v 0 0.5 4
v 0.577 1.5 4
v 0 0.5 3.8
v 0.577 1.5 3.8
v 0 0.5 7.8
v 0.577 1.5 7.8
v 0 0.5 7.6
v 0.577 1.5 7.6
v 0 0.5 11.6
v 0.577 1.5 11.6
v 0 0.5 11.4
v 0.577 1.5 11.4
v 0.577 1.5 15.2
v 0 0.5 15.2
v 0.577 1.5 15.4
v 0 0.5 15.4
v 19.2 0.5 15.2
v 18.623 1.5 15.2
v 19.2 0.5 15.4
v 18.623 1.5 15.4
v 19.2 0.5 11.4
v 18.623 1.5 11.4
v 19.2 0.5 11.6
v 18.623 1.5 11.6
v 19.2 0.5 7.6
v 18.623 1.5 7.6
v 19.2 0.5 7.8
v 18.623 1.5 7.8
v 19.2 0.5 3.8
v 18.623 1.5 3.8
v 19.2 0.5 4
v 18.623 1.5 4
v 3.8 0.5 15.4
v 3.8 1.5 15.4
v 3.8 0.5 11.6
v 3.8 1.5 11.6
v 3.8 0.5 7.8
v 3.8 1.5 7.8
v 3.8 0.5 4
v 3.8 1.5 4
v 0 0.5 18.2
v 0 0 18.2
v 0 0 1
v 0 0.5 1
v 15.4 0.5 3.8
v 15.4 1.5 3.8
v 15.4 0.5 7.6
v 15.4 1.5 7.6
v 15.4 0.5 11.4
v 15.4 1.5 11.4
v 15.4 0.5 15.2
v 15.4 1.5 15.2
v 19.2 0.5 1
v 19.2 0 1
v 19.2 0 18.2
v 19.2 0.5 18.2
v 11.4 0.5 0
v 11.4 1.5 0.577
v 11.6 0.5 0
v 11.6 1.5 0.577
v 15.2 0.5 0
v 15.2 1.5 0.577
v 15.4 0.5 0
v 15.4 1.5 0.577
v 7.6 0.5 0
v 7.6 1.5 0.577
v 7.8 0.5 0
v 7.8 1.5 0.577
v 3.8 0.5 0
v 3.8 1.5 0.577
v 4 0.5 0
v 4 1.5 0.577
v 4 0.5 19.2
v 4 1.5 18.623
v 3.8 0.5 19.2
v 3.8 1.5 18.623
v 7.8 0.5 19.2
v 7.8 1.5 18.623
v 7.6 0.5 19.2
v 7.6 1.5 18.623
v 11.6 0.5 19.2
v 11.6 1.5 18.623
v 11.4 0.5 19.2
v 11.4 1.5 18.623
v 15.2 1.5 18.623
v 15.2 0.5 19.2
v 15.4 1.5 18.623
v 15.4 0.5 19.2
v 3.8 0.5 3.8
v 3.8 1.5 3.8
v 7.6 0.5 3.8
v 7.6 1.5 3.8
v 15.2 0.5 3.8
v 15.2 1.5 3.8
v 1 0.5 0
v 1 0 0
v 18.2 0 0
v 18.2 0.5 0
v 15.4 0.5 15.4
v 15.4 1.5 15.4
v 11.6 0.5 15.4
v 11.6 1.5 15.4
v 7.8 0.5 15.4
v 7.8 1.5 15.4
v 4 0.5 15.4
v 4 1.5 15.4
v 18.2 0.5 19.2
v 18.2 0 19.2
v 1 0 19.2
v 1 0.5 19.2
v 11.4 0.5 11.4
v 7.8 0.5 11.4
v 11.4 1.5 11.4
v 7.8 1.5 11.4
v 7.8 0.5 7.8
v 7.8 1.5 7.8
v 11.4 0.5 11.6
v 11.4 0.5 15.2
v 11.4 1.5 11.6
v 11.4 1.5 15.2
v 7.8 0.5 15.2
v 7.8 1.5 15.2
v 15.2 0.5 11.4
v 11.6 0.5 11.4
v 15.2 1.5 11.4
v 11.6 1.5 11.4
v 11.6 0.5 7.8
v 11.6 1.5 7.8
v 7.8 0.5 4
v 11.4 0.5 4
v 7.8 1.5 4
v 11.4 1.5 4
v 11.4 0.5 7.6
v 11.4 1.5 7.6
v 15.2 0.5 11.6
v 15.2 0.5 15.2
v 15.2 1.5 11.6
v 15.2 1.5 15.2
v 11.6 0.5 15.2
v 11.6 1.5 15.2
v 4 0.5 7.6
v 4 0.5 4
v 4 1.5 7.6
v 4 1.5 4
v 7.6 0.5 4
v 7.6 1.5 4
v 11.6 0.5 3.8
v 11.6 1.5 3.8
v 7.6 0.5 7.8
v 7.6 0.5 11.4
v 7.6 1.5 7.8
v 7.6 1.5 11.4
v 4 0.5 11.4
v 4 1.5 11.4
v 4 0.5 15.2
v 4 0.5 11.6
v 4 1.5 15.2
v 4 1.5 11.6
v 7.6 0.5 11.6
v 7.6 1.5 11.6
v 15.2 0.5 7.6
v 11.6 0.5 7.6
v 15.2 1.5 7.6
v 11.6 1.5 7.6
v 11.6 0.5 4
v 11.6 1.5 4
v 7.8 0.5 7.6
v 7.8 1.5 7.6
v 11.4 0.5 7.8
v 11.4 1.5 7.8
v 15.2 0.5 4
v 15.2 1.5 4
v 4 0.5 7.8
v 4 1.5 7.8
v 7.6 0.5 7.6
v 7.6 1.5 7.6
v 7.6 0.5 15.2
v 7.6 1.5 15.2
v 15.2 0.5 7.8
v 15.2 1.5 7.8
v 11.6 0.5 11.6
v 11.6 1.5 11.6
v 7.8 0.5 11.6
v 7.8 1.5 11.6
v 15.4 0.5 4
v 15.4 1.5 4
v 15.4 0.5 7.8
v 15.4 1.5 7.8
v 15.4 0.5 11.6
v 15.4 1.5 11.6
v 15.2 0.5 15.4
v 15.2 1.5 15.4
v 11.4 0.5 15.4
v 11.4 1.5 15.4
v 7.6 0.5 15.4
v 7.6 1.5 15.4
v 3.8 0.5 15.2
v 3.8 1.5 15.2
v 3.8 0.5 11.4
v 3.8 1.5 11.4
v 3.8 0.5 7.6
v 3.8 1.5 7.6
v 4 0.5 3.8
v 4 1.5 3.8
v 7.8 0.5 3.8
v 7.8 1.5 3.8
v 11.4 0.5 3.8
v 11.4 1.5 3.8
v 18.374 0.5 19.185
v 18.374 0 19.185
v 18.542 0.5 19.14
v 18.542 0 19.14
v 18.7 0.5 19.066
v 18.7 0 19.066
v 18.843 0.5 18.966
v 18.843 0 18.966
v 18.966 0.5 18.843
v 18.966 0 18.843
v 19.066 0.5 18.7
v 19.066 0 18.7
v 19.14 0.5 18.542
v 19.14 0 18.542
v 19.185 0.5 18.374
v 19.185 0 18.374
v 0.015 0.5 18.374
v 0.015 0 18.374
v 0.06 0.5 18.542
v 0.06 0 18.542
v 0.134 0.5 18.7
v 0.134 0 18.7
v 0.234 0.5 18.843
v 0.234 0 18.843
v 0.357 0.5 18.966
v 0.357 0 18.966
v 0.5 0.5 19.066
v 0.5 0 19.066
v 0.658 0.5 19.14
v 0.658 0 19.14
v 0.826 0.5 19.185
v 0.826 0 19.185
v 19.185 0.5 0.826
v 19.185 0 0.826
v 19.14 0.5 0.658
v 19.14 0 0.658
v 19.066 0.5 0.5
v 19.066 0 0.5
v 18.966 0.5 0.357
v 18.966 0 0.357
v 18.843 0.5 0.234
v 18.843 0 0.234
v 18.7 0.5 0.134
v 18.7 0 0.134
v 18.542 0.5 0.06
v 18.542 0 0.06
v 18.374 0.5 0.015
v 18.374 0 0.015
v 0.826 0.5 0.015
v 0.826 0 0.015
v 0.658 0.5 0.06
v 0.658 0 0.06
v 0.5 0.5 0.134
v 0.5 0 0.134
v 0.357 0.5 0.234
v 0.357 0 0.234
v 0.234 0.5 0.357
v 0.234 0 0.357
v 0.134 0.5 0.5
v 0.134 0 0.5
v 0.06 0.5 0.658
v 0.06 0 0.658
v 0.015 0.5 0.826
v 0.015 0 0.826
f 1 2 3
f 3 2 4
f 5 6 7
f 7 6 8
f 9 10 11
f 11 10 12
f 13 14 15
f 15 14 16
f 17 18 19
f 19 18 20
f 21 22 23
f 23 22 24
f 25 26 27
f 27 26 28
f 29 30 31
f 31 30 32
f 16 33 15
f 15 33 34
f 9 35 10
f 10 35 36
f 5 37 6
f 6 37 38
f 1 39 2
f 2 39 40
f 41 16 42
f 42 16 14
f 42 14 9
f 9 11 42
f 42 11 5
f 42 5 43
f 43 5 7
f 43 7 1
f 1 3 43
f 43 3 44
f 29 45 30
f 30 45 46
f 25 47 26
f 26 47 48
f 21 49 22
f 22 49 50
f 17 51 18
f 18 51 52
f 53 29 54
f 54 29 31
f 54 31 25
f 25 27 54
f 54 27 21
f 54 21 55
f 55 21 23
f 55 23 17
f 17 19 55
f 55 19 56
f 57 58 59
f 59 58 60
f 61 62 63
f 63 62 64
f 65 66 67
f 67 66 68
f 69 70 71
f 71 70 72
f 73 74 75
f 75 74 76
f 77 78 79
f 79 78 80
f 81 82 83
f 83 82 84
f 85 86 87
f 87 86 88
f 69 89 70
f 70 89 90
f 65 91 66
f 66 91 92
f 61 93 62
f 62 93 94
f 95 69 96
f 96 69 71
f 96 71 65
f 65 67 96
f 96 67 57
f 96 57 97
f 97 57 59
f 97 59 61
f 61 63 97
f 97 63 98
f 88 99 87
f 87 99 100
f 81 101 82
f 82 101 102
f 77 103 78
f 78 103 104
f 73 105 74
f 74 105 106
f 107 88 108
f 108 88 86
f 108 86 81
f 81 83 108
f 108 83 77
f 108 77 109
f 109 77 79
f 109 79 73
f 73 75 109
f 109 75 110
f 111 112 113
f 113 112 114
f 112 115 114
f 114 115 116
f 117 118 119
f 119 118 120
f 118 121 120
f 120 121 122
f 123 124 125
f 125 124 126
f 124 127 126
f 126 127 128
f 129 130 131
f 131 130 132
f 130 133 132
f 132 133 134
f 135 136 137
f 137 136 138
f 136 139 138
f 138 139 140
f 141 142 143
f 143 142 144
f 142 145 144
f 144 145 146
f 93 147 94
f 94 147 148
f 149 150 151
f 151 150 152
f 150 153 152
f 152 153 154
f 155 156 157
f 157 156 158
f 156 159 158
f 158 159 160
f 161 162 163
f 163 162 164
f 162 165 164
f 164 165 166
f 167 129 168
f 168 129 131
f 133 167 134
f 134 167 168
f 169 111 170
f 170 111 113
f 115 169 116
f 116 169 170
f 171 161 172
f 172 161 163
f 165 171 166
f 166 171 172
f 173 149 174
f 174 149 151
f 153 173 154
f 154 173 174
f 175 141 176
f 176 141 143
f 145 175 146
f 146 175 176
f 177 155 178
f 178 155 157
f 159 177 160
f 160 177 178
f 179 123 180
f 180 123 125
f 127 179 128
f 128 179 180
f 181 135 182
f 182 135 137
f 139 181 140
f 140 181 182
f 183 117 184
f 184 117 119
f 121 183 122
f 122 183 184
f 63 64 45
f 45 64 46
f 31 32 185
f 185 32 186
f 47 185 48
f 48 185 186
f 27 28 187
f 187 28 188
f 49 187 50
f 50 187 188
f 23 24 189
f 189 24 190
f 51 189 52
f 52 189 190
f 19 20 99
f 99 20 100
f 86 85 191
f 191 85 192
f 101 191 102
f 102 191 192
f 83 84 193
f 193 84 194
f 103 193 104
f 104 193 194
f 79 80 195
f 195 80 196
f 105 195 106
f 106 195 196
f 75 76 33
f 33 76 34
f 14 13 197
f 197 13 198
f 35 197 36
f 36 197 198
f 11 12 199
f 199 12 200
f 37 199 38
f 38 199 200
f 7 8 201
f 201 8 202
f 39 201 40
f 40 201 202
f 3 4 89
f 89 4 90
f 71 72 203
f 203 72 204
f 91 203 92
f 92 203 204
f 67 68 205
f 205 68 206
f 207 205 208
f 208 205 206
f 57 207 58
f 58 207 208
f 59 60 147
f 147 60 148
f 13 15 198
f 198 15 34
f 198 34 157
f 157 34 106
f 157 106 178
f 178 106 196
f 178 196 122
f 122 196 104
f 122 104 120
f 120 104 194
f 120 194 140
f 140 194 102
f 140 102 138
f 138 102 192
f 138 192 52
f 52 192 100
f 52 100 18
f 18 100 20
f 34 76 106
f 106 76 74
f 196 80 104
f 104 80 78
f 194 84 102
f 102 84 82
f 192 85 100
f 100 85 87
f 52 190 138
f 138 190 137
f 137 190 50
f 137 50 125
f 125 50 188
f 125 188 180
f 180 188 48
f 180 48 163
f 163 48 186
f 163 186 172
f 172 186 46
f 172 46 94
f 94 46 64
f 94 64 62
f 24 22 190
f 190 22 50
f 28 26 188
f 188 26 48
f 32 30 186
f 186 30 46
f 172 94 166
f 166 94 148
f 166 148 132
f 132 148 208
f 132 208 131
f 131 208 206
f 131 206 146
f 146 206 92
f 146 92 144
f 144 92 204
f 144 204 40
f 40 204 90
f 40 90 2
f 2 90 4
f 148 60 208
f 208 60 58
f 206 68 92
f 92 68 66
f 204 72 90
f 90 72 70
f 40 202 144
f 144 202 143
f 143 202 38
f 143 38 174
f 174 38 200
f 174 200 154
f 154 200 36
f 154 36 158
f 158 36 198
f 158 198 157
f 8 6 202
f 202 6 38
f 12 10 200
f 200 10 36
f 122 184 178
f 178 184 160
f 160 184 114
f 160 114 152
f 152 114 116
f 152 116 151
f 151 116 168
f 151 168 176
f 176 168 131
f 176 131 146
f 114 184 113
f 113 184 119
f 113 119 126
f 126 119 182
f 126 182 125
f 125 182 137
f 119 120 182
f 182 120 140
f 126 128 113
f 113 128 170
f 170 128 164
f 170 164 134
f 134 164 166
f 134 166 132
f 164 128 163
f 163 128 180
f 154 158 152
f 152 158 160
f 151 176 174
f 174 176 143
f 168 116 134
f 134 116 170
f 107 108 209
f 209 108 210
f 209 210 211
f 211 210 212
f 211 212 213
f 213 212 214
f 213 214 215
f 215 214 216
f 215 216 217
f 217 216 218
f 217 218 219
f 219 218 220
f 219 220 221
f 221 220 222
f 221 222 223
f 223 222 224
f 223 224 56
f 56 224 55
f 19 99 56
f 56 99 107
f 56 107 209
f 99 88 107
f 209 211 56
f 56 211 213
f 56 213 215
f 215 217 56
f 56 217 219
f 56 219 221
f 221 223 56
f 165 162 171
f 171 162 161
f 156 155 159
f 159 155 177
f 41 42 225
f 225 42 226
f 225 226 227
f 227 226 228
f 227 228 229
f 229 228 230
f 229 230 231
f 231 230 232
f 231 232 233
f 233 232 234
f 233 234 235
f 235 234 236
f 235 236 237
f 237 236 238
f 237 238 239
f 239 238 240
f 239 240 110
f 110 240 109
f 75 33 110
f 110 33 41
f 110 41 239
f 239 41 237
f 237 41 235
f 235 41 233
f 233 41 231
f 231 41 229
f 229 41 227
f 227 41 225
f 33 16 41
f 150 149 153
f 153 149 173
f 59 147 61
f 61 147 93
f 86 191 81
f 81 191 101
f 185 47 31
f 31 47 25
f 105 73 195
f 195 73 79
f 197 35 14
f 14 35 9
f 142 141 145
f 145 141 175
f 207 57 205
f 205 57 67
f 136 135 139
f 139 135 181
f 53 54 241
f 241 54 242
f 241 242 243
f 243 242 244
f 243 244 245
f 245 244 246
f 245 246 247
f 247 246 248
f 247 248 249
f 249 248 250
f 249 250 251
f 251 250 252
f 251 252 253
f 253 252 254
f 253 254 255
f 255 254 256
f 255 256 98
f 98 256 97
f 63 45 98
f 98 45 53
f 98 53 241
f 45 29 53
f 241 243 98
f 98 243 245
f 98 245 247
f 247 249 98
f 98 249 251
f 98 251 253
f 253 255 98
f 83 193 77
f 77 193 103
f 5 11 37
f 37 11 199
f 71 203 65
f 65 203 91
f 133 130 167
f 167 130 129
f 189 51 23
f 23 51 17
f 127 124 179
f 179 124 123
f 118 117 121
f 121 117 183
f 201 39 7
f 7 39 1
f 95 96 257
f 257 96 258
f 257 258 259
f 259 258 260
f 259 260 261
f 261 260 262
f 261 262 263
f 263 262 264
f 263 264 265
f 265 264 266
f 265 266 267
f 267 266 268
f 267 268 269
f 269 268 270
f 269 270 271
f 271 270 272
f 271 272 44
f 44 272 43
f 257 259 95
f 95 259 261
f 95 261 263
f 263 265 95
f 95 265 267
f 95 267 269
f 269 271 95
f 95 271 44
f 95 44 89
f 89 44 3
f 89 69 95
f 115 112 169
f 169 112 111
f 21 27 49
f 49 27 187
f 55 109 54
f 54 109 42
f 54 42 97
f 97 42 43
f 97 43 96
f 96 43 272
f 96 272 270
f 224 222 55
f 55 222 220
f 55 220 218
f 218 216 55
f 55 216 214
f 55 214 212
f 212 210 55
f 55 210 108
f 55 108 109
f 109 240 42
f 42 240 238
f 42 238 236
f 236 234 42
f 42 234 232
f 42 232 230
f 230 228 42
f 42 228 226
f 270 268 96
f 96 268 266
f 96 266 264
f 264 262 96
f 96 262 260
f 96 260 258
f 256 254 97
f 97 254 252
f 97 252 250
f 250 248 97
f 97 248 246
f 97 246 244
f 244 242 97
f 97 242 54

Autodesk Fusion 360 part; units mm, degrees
sketch "スケッチ1" plane through (0, 0, 0) normal (0, 1, 0) x (1, 0, 0)
  line L0 (1, 0) -> (18.2, 0)
  line L1 (19.2, -1) -> (19.2, -18.2)
  line L2 (18.2, -19.2) -> (1, -19.2)
  line L3 (0, -18.2) -> (0, -1)
  line L4 (3.8, -19.2) -> (3.8, 0)
  line L5 (4, -19.2) -> (4, 0)
  line L6 (7.6, 0) -> (7.6, -19.2)
  line L7 (7.8, -19.2) -> (7.8, 0)
  line L8 (19.2, -3.8) -> (0, -3.8)
  line L9 (0, -4) -> (19.2, -4)
  line L10 (19.2, -7.6) -> (0, -7.6)
  line L11 (0, -7.8) -> (19.2, -7.8)
  line L12 (0, -11.4) -> (19.2, -11.4)
  line L13 (19.2, -11.6) -> (0, -11.6)
  line L14 (0, -15.2) -> (19.2, -15.2)
  line L15 (19.2, -15.4) -> (0, -15.4)
  line L16 (11.4, -19.2) -> (11.4, 0)
  line L17 (11.6, 0) -> (11.6, -19.2)
  line L18 (15.2, -19.2) -> (15.2, 0)
  line L19 (15.4, 0) -> (15.4, -19.2)
  arc A0 (18.2, -19.2) -> (19.2, -18.2) centre (18.2, -18.2) ccw
  arc A1 (19.2, -1) -> (18.2, 0) centre (18.2, -1) ccw
  arc A2 (1, 0) -> (0, -1) centre (1, -1) ccw
  arc A3 (0, -18.2) -> (1, -19.2) centre (1, -18.2) ccw
  line L20 (-20.3302, 0) -> (25.6829, 0) construction
  line L21 (0, -22.3952) -> (0, 11.1848) construction
  dimension "d3" = 3.8
  dimension "d5" = 3.6
  dimension "d6" = 0.2
  dimension "d7" = 3.8
  dimension "d8" = 0.2
  dimension "d9" = 3.6
  dimension "d10" = 0.2
  dimension "d11" = 0.2
  dimension "d12" = 3.6
  dimension "d13" = 0.2
  dimension "d14" = 3.6
  dimension "d15" = 0.2
  dimension "d16" = 3.6
  dimension "d17" = 0.2
  dimension "d18" = 0.2
  dimension "d19" = 3.6
  dimension "d24" = 3.8
  dimension "d25" = 3.8
  dimension "d34" = 1
extrude "押し出し1" add sketch "スケッチ1" along normal blind 0.5 contours L0 L3 L4 L8 A2 | L0 L5 L6 L8 | L3 L4 L9 L10 | L0 L7 L8 L16 | L5 L6 L9 L10 | L3 L4 L11 L12 | L0 L8 L17 L18 | L7 L9 L10 L16 | L5 L6 L11 L12 | L3 L4 L13 L14 | L0 L1 L8 L19 A1 | L9 L10 L17 L18 | L7 L11 L12 L16 | L5 L6 L13 L14 | L2 L3 L4 L15 A3 | L1 L9 L10 L19 | L11 L12 L17 L18 | L7 L13 L14 L16 | L2 L5 L6 L15 | L1 L11 L12 L19 | L13 L14 L17 L18 | L2 L7 L15 L16 | L1 L13 L14 L19 | L2 L15 L17 L18 | L1 L2 L15 L19 A0 makes body 1 at (9, 0, 5.2) makes body 2 at (17.9333, 0, 2.8667) makes body 3 at (9, 0, 2.5333) makes body 4 at (10.2, 0, 14) makes body 5 at (5.2, 0, 5.2) makes body 6 at (1.2667, 0, 9) makes body 7 at (2.5333, 0, 14) makes body 8 at (6.4, 0, 1.2667) makes body 9 at (6.4, 0, 14) makes body 10 at (9, 0, 9) makes body 11 at (12.8, 0, 5.2) makes body 12 at (16.6667, 0, 9) makes body 13 at (14, 0, 14) makes body 14 at (12.8, 0, 9) makes body 15 at (12.8, 0, 2.5333) makes body 16 at (1.2667, 0, 5.2) makes body 17 at (5.2, 0, 9) makes body 18 at (16.6667, 0, 5.2) makes body 19 at (1.2667, 0, 16.3333) makes body 20 at (2.8667, 0, 1.2667) makes body 21 at (17.9333, 0, 14) makes body 22 at (17.9333, 0, 16.3333) makes body 23 at (9, 0, 17.9333) makes body 24 at (5.2, 0, 16.6667) makes body 25 at (12.8, 0, 17.9333)
extrude "押し出し2" add sketch "スケッチ1" along normal blind 1.5 contours L0 L4 L5 L8 | L4 L5 L8 L9 | L3 L4 L8 L9 | L0 L6 L7 L8 | L5 L6 L8 L9 | L4 L5 L9 L10 | L6 L7 L8 L9 | L4 L5 L10 L11 | L3 L4 L10 L11 | L0 L8 L16 L17 | L7 L8 L9 L16 | L6 L7 L9 L10 | L5 L6 L10 L11 | L4 L5 L11 L12 | L8 L9 L16 L17 | L6 L7 L10 L11 | L4 L5 L12 L13 | L3 L4 L12 L13 | L0 L8 L18 L19 | L8 L9 L17 L18 | L9 L10 L16 L17 | L7 L10 L11 L16 | L6 L7 L11 L12 | L5 L6 L12 L13 | L4 L5 L13 L14 | L8 L9 L18 L19 | L10 L11 L16 L17 | L6 L7 L12 L13 | L4 L5 L14 L15 | L3 L4 L14 L15 | L1 L8 L9 L19 | L9 L10 L18 L19 | L10 L11 L17 L18 | L11 L12 L16 L17 | L7 L12 L13 L16 | L6 L7 L13 L14 | L5 L6 L14 L15 | L2 L4 L5 L15 | L10 L11 L18 L19 | L12 L13 L16 L17 | L6 L7 L14 L15 | L1 L10 L11 L19 | L11 L12 L18 L19 | L12 L13 L17 L18 | L13 L14 L16 L17 | L7 L14 L15 L16 | L2 L6 L7 L15 | L12 L13 L18 L19 | L14 L15 L16 L17 | L1 L12 L13 L19 | L13 L14 L18 L19 | L14 L15 L17 L18 | L2 L15 L16 L17 | L14 L15 L18 L19 | L1 L14 L15 L19 | L2 L15 L18 L19 bodies 1 2 3 4 5 6 7 8 9 10 11 12 13 14 15 16 17 18 19 20 21 22 23 24 25
sketch "スケッチ5" plane through (15.4, 0, 0) normal (1, 0, 0) x (0, 0, -1)
  line L0 (-19.2, 0.5) -> (-15.4, 0.5)
  line L1 (-15.4, 0.5) -> (-15.4, 1.5)
  line L2 (-15.4, 1.5) -> (-19.2, 1.5)
  line L3 (-19.2, 1.5) -> (-19.2, 0.5)
  line L4 (-19.2, 0.5) -> (-16.9184, 4.4518)
  line L5 (-16.9184, 4.4518) -> (-19.2, 4.4518)
  line L6 (-19.2, 4.4518) -> (-19.2, 0.5)
  dimension "d35" = 30
sketch "スケッチ6" plane through (15.4, 0, 0) normal (1, 0, 0) x (0, 0, -1)
  line L0 (-3.8, 0.5) -> (0, 0.5)
  line L1 (0, 0.5) -> (0, 1.5)
  line L2 (0, 1.5) -> (-3.8, 1.5)
  line L3 (-3.8, 1.5) -> (-3.8, 0.5)
  line L4 (0, 0.5) -> (0, 4.8319)
  line L5 (0, 4.8319) -> (-2.501, 4.8319)
  line L6 (-2.501, 4.8319) -> (0, 0.5)
  dimension "d36" = 30
extrude "押し出し5" cut sketch "スケッチ6" sketch "スケッチ5" against normal blind 14.5 contours L1 L2 L4 L6 of sketch 2 contours L2 L3 L4 L6 bodies 1
sketch "スケッチ3" plane through (0, 0, 15.4) normal (0, 0, 1) x (1, 0, 0)
  line L0 (0, 0.5) -> (3.8, 0.5)
  line L1 (3.8, 0.5) -> (3.8, 1.5)
  line L2 (3.8, 1.5) -> (0, 1.5)
  line L3 (0, 1.5) -> (0, 0.5)
  line L4 (0, 0.5) -> (0, 2.6672)
  line L5 (0, 2.6672) -> (1.2513, 2.6672)
  line L6 (1.2513, 2.6672) -> (0, 0.5)
  dimension "d30" = 30
sketch "スケッチ4" plane through (0, 0, 15.4) normal (0, 0, 1) x (1, 0, 0)
  line L0 (15.4, 0.5) -> (19.2, 0.5)
  line L1 (19.2, 0.5) -> (19.2, 1.5)
  line L2 (19.2, 1.5) -> (15.4, 1.5)
  line L3 (15.4, 1.5) -> (15.4, 0.5)
  line L4 (19.2, 0.5) -> (19.2, 2.9821)
  line L5 (19.2, 2.9821) -> (17.7669, 2.9821)
  line L6 (17.7669, 2.9821) -> (19.2, 0.5)
  dimension "d31" = 30
extrude "押し出し4" cut sketch "スケッチ3" sketch "スケッチ4" against normal blind 13 contours L2 L3 L4 L6 | L2 L4 L5 L6 of sketch 2 contours L1 L2 L4 L6 | L2 L4 L5 L6 bodies 1
